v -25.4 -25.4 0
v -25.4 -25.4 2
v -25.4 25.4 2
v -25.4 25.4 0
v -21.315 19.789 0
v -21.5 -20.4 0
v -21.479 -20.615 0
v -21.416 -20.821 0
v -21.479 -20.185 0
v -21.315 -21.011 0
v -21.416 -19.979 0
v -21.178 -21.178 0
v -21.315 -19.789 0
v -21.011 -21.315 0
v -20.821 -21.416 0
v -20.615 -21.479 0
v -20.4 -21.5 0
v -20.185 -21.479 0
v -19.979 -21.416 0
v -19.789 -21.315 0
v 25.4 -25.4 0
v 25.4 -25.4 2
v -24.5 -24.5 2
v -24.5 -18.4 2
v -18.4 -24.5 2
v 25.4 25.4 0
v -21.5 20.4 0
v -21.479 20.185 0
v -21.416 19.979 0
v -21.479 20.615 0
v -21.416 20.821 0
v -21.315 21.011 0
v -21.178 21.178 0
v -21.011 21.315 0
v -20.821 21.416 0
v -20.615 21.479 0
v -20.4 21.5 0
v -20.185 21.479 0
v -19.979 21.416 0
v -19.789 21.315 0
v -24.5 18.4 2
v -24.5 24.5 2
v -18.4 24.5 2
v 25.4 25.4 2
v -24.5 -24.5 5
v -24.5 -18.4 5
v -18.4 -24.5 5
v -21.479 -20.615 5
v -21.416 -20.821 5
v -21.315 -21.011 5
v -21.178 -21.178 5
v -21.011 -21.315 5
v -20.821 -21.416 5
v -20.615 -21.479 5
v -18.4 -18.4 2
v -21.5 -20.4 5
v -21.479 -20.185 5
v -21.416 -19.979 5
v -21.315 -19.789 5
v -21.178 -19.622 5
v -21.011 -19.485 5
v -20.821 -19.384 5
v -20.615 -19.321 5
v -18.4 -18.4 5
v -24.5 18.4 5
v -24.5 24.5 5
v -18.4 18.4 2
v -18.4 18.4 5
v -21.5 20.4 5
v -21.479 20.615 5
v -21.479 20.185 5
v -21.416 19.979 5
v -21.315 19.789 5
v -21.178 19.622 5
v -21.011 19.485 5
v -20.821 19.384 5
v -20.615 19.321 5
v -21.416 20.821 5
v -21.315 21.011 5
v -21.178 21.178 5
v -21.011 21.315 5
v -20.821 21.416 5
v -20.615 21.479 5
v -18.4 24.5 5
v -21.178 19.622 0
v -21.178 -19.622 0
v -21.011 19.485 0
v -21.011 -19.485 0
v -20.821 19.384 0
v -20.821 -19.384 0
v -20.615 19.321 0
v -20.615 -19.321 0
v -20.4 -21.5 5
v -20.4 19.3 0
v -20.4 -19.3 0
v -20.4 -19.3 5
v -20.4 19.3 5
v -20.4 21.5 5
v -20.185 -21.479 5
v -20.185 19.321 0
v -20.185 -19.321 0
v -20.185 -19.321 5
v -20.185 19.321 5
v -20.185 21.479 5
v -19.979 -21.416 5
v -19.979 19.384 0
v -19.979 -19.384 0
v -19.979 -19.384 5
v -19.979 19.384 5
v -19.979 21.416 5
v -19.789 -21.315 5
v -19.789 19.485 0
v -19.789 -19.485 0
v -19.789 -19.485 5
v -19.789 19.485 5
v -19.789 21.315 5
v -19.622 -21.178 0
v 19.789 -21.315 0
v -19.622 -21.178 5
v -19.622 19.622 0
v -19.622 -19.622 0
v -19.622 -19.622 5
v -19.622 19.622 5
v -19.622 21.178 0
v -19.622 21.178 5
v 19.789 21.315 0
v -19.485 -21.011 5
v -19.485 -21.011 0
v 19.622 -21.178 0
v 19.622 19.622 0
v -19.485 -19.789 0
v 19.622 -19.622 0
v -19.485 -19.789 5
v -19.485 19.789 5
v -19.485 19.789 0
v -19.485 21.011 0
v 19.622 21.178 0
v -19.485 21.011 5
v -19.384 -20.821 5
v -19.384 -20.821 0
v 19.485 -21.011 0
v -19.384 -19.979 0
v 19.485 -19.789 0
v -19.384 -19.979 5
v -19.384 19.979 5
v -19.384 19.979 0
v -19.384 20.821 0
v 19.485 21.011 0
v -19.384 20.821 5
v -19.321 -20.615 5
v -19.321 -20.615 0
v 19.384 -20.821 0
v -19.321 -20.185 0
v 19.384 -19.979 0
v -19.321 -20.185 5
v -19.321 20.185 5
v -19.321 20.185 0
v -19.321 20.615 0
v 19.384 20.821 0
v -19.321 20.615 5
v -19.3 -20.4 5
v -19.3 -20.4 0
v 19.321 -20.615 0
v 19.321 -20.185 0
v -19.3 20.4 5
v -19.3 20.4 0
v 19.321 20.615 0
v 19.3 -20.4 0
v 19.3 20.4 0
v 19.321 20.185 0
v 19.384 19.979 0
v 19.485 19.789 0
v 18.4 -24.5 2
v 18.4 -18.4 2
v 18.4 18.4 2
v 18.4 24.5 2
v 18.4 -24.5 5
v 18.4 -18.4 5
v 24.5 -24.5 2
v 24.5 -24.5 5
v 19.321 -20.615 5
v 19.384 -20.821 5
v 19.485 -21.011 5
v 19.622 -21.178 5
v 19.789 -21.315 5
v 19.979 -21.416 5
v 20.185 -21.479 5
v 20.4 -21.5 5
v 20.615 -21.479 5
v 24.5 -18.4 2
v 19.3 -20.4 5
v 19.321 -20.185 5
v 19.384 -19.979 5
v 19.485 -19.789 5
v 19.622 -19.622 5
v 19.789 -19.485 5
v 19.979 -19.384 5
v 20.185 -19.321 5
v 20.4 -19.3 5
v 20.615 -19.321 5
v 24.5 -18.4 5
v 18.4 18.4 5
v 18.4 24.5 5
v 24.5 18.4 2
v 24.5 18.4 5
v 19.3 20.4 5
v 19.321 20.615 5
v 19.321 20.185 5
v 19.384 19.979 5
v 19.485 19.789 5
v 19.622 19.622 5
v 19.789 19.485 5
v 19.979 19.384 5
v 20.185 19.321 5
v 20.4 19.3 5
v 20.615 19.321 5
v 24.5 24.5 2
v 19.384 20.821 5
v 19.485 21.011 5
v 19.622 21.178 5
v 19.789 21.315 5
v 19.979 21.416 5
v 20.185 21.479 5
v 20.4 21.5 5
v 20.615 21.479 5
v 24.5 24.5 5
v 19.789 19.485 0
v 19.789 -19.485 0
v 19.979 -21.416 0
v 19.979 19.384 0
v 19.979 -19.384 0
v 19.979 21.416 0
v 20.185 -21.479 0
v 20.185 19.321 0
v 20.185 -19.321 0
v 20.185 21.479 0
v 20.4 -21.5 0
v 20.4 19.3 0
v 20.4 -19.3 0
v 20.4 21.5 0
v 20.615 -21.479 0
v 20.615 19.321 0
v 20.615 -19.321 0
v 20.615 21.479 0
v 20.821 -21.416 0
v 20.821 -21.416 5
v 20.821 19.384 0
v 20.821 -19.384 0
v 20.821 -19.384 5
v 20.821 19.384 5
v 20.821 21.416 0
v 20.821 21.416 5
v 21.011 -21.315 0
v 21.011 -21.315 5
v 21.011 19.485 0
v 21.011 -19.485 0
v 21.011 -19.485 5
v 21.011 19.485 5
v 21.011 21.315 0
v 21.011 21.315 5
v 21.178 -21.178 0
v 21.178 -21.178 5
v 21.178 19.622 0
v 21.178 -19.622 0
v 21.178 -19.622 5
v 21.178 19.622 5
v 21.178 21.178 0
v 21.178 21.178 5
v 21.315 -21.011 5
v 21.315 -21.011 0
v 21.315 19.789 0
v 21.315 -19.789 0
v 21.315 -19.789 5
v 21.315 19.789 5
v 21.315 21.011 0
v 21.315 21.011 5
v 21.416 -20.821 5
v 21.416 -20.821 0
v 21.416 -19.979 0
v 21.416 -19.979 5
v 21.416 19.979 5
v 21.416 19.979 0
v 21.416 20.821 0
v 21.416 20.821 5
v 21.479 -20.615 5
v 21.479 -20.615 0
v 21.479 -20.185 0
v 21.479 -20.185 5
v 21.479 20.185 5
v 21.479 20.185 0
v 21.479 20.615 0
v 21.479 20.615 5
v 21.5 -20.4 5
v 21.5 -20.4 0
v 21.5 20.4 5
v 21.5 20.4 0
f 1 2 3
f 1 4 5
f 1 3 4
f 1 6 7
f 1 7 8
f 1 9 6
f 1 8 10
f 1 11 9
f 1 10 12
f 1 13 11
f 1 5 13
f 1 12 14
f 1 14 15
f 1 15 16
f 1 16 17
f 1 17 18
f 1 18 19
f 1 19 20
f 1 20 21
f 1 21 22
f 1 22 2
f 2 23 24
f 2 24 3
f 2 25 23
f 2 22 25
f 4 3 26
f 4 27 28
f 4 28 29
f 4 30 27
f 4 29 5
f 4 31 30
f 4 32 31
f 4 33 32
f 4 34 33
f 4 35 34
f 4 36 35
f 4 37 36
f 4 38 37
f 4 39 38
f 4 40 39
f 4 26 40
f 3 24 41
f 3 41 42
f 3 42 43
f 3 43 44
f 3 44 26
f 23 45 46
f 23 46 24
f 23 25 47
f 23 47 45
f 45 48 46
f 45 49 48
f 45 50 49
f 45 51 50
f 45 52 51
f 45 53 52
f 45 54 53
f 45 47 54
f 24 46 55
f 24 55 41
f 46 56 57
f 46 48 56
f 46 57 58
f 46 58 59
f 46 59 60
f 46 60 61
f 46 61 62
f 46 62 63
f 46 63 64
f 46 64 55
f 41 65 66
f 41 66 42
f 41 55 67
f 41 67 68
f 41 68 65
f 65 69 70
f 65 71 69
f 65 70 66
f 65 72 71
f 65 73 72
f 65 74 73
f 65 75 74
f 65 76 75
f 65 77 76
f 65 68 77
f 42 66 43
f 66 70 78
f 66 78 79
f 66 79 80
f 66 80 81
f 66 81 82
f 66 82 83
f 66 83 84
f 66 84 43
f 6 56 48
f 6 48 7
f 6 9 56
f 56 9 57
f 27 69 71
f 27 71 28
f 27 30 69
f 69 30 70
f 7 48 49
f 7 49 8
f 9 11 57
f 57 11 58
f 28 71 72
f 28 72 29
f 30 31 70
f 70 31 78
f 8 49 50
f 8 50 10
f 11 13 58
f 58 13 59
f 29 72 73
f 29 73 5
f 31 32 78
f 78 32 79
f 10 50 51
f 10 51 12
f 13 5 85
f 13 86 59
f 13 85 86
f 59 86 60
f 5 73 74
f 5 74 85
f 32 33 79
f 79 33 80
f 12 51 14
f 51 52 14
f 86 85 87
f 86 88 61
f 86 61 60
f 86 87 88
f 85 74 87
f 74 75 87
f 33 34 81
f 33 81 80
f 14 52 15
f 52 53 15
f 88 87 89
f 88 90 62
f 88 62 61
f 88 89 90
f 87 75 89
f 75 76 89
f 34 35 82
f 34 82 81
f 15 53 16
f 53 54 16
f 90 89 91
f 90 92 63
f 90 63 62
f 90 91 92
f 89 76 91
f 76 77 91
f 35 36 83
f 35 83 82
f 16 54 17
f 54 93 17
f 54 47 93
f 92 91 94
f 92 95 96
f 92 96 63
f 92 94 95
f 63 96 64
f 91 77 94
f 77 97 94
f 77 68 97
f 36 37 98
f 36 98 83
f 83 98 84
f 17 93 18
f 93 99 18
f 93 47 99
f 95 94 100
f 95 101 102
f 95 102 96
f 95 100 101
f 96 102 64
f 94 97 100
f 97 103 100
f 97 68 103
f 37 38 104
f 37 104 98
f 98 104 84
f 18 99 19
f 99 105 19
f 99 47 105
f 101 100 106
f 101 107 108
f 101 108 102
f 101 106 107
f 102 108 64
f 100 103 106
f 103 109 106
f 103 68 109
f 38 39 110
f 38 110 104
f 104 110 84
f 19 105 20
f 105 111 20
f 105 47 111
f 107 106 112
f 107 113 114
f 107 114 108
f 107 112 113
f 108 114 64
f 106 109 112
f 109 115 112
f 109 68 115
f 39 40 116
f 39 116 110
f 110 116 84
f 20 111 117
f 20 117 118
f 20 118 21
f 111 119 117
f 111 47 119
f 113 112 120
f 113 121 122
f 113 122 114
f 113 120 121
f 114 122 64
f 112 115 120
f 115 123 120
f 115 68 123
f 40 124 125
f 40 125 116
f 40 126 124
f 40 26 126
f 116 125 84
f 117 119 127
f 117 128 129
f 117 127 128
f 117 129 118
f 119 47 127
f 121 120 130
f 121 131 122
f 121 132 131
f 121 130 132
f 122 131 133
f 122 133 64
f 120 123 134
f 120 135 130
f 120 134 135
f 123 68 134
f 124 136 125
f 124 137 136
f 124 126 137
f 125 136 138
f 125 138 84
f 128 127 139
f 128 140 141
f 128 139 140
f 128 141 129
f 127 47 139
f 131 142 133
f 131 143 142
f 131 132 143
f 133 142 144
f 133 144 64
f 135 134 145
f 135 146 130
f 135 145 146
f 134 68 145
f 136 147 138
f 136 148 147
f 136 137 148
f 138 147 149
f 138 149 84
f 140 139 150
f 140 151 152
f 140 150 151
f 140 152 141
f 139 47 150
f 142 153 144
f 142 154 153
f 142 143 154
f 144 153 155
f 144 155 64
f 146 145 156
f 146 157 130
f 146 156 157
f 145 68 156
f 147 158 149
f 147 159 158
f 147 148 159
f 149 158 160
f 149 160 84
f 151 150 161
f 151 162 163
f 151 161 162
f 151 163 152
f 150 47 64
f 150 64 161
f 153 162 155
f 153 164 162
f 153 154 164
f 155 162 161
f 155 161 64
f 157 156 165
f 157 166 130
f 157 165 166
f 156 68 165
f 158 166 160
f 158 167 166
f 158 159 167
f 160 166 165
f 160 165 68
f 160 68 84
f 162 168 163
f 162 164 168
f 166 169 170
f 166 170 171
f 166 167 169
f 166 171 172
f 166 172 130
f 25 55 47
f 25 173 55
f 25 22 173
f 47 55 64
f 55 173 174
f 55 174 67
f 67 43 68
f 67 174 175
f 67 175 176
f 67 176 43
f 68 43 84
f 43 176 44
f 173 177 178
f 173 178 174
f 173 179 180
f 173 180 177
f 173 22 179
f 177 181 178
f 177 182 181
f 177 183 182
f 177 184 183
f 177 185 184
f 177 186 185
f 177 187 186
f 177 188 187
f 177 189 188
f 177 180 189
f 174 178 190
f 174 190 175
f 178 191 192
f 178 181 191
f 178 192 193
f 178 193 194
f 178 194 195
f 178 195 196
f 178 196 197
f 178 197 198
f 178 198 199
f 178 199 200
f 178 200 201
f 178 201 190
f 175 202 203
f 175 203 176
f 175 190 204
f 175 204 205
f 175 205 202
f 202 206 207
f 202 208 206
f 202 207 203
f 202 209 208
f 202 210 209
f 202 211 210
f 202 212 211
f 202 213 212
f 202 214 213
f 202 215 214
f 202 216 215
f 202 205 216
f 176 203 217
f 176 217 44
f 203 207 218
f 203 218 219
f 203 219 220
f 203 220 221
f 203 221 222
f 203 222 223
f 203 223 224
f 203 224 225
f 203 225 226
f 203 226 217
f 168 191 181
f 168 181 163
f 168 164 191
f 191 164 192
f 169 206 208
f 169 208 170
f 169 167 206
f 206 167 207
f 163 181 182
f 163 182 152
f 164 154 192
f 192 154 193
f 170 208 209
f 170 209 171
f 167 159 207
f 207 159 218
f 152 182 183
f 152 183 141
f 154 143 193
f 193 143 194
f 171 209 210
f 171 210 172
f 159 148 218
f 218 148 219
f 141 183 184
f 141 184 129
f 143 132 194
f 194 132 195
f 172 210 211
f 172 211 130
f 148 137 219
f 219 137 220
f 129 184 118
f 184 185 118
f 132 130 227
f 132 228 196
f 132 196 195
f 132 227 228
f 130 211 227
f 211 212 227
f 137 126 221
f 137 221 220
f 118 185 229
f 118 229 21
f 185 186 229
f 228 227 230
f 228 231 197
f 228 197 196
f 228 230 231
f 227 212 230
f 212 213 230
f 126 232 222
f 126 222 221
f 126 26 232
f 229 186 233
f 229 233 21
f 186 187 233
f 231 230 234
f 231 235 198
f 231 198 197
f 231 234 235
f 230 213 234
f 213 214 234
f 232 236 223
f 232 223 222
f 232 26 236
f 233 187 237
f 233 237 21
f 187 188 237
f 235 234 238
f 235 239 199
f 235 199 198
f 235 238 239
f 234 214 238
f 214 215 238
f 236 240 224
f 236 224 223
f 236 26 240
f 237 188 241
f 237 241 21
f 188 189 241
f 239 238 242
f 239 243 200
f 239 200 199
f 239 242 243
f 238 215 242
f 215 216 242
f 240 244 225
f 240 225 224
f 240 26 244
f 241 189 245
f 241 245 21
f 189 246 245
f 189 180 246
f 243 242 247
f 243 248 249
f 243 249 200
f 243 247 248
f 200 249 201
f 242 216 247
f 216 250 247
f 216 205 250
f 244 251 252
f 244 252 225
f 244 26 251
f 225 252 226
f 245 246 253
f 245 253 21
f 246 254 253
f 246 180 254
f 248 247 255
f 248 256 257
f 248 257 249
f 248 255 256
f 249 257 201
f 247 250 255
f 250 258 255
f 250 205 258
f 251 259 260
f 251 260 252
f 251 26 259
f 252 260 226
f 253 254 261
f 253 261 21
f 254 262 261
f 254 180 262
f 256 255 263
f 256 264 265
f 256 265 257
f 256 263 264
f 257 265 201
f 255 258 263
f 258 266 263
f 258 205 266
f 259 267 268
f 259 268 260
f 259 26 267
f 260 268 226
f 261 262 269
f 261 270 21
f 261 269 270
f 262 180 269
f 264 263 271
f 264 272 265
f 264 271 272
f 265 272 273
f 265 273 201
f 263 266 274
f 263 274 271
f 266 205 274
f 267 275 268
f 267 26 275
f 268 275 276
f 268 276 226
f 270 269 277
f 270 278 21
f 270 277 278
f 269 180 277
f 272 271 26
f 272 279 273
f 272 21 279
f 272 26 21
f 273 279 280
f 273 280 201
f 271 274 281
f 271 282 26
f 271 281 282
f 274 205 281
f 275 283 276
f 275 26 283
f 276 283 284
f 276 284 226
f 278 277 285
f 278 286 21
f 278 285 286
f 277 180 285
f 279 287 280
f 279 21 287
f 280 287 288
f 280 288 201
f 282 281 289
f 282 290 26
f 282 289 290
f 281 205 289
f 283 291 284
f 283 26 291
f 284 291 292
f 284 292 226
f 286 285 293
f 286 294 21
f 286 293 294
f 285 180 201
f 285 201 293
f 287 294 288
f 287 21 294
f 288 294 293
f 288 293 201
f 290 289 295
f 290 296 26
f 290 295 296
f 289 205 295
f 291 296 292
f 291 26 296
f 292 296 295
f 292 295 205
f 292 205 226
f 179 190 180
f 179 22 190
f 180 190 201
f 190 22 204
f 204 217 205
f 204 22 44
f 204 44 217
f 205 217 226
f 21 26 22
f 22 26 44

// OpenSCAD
base = 4;
wall_height = 0.9;







module corner_base(){
    cube([25.4,25.4,base],center = false);
    rotate([0,0,270]){
        translate([0,0,0]){
            mirror([1,0,0]){
                difference(){
        union(){
            
            translate([0,25.4-wall_height,base])
                cube([25.4,0.9,9]);
            translate([0,17.4,base])
                    cube([7.1,7.1,4],center = false);
            
            difference(){
                translate([17.4,17.4,base])
                    cube([7.1,7.1,4],center = false);
                translate([20.4,20.4,base+2.5])
                    cylinder(h = 5, r = 1.6,center = true,$fn = 32  );
            }
        }
        translate([25.4/2 - 11/2,25.4-2,base+4])
            cube([11,5,10]);
        translate([3.6,24.9,base+2]){
            rotate([90,0,0])
            cylinder(h=3,r=1.6,center = true,$fn = 32);
    }
        translate([21.8,24.9,base+2]){
            rotate([90,0,0])
                cylinder(h=3,r=1.6,center = true,$fn = 32);
    }
    }   
                
            }
            
    }      
        
    }

    difference(){
        union(){
            
            translate([0,25.4-wall_height,base])
                cube([25.4,0.9,9]);
            translate([0,17.4,base])
                    cube([7.1,7.1,4],center = false);
            
            difference(){
                translate([17.4,17.4,base])
                    cube([7.1,7.1,4],center = false);
                translate([20.4,20.4,base+2.5])
                    cylinder(h = 5, r = 1.6,center = true,$fn = 32  );
            }
        }
        translate([25.4/2 - 11/2,25.4-2,base+4])
            cube([11,5,10]);
        translate([3.6,24.9,base+2]){
            rotate([90,0,0])
            cylinder(h=3,r=1.6,center = true,$fn = 32);
    }
        translate([21.8,24.9,base+2]){
            rotate([90,0,0])
                cylinder(h=3,r=1.6,center = true,$fn = 32);
    }
    }   
}
















module edge_base(){
    translate([-25.4,0,0]){

        cube([25.4,25.4,base],center = false);
        

        difference(){
            union(){
                
                translate([0,25.4-wall_height,base])
                    cube([25.4,0.9,9]);
                translate([0,17.4,base])
                        cube([7.1,7.1,4],center = false);
                
                difference(){
                    translate([17.4,17.4,base])
                        cube([7.1,7.1,4],center = false);
                    
                }
            }
            translate([25.4/2 - 11/2,25.4-2,base+4])
                cube([11,5,10]);
            translate([3.6,24.9,base+2]){
                rotate([90,0,0])
                cylinder(h=3,r=1.6,center = true,$fn = 32);
        }
            translate([21.8,24.9,base+2]){
                rotate([90,0,0])
                    cylinder(h=3,r=1.6,center = true,$fn = 32);
        }
        }
    }

}








module corner_top(){
    difference(){
        union(){
            translate([18.4,18.4,10]){
                cube([6.1,6.1,3]);
            }
            translate([0,0,9+base]){
                cube([25.4,25.4,2]);
            }
        }
        
        
        translate([20.4,20.4,12.5])
            cylinder(h = 15, r = 1.1    ,center = true,$fn = 32  );

    }
}














translate([0,0,15])
    rotate([0,180,0]){
        corner_top();
        rotate([0,0,90]){
            corner_top();
        }
        rotate([0,0,180]){
            corner_top();
        }
        rotate([0,0,270]){
            corner_top();
        }
    }
